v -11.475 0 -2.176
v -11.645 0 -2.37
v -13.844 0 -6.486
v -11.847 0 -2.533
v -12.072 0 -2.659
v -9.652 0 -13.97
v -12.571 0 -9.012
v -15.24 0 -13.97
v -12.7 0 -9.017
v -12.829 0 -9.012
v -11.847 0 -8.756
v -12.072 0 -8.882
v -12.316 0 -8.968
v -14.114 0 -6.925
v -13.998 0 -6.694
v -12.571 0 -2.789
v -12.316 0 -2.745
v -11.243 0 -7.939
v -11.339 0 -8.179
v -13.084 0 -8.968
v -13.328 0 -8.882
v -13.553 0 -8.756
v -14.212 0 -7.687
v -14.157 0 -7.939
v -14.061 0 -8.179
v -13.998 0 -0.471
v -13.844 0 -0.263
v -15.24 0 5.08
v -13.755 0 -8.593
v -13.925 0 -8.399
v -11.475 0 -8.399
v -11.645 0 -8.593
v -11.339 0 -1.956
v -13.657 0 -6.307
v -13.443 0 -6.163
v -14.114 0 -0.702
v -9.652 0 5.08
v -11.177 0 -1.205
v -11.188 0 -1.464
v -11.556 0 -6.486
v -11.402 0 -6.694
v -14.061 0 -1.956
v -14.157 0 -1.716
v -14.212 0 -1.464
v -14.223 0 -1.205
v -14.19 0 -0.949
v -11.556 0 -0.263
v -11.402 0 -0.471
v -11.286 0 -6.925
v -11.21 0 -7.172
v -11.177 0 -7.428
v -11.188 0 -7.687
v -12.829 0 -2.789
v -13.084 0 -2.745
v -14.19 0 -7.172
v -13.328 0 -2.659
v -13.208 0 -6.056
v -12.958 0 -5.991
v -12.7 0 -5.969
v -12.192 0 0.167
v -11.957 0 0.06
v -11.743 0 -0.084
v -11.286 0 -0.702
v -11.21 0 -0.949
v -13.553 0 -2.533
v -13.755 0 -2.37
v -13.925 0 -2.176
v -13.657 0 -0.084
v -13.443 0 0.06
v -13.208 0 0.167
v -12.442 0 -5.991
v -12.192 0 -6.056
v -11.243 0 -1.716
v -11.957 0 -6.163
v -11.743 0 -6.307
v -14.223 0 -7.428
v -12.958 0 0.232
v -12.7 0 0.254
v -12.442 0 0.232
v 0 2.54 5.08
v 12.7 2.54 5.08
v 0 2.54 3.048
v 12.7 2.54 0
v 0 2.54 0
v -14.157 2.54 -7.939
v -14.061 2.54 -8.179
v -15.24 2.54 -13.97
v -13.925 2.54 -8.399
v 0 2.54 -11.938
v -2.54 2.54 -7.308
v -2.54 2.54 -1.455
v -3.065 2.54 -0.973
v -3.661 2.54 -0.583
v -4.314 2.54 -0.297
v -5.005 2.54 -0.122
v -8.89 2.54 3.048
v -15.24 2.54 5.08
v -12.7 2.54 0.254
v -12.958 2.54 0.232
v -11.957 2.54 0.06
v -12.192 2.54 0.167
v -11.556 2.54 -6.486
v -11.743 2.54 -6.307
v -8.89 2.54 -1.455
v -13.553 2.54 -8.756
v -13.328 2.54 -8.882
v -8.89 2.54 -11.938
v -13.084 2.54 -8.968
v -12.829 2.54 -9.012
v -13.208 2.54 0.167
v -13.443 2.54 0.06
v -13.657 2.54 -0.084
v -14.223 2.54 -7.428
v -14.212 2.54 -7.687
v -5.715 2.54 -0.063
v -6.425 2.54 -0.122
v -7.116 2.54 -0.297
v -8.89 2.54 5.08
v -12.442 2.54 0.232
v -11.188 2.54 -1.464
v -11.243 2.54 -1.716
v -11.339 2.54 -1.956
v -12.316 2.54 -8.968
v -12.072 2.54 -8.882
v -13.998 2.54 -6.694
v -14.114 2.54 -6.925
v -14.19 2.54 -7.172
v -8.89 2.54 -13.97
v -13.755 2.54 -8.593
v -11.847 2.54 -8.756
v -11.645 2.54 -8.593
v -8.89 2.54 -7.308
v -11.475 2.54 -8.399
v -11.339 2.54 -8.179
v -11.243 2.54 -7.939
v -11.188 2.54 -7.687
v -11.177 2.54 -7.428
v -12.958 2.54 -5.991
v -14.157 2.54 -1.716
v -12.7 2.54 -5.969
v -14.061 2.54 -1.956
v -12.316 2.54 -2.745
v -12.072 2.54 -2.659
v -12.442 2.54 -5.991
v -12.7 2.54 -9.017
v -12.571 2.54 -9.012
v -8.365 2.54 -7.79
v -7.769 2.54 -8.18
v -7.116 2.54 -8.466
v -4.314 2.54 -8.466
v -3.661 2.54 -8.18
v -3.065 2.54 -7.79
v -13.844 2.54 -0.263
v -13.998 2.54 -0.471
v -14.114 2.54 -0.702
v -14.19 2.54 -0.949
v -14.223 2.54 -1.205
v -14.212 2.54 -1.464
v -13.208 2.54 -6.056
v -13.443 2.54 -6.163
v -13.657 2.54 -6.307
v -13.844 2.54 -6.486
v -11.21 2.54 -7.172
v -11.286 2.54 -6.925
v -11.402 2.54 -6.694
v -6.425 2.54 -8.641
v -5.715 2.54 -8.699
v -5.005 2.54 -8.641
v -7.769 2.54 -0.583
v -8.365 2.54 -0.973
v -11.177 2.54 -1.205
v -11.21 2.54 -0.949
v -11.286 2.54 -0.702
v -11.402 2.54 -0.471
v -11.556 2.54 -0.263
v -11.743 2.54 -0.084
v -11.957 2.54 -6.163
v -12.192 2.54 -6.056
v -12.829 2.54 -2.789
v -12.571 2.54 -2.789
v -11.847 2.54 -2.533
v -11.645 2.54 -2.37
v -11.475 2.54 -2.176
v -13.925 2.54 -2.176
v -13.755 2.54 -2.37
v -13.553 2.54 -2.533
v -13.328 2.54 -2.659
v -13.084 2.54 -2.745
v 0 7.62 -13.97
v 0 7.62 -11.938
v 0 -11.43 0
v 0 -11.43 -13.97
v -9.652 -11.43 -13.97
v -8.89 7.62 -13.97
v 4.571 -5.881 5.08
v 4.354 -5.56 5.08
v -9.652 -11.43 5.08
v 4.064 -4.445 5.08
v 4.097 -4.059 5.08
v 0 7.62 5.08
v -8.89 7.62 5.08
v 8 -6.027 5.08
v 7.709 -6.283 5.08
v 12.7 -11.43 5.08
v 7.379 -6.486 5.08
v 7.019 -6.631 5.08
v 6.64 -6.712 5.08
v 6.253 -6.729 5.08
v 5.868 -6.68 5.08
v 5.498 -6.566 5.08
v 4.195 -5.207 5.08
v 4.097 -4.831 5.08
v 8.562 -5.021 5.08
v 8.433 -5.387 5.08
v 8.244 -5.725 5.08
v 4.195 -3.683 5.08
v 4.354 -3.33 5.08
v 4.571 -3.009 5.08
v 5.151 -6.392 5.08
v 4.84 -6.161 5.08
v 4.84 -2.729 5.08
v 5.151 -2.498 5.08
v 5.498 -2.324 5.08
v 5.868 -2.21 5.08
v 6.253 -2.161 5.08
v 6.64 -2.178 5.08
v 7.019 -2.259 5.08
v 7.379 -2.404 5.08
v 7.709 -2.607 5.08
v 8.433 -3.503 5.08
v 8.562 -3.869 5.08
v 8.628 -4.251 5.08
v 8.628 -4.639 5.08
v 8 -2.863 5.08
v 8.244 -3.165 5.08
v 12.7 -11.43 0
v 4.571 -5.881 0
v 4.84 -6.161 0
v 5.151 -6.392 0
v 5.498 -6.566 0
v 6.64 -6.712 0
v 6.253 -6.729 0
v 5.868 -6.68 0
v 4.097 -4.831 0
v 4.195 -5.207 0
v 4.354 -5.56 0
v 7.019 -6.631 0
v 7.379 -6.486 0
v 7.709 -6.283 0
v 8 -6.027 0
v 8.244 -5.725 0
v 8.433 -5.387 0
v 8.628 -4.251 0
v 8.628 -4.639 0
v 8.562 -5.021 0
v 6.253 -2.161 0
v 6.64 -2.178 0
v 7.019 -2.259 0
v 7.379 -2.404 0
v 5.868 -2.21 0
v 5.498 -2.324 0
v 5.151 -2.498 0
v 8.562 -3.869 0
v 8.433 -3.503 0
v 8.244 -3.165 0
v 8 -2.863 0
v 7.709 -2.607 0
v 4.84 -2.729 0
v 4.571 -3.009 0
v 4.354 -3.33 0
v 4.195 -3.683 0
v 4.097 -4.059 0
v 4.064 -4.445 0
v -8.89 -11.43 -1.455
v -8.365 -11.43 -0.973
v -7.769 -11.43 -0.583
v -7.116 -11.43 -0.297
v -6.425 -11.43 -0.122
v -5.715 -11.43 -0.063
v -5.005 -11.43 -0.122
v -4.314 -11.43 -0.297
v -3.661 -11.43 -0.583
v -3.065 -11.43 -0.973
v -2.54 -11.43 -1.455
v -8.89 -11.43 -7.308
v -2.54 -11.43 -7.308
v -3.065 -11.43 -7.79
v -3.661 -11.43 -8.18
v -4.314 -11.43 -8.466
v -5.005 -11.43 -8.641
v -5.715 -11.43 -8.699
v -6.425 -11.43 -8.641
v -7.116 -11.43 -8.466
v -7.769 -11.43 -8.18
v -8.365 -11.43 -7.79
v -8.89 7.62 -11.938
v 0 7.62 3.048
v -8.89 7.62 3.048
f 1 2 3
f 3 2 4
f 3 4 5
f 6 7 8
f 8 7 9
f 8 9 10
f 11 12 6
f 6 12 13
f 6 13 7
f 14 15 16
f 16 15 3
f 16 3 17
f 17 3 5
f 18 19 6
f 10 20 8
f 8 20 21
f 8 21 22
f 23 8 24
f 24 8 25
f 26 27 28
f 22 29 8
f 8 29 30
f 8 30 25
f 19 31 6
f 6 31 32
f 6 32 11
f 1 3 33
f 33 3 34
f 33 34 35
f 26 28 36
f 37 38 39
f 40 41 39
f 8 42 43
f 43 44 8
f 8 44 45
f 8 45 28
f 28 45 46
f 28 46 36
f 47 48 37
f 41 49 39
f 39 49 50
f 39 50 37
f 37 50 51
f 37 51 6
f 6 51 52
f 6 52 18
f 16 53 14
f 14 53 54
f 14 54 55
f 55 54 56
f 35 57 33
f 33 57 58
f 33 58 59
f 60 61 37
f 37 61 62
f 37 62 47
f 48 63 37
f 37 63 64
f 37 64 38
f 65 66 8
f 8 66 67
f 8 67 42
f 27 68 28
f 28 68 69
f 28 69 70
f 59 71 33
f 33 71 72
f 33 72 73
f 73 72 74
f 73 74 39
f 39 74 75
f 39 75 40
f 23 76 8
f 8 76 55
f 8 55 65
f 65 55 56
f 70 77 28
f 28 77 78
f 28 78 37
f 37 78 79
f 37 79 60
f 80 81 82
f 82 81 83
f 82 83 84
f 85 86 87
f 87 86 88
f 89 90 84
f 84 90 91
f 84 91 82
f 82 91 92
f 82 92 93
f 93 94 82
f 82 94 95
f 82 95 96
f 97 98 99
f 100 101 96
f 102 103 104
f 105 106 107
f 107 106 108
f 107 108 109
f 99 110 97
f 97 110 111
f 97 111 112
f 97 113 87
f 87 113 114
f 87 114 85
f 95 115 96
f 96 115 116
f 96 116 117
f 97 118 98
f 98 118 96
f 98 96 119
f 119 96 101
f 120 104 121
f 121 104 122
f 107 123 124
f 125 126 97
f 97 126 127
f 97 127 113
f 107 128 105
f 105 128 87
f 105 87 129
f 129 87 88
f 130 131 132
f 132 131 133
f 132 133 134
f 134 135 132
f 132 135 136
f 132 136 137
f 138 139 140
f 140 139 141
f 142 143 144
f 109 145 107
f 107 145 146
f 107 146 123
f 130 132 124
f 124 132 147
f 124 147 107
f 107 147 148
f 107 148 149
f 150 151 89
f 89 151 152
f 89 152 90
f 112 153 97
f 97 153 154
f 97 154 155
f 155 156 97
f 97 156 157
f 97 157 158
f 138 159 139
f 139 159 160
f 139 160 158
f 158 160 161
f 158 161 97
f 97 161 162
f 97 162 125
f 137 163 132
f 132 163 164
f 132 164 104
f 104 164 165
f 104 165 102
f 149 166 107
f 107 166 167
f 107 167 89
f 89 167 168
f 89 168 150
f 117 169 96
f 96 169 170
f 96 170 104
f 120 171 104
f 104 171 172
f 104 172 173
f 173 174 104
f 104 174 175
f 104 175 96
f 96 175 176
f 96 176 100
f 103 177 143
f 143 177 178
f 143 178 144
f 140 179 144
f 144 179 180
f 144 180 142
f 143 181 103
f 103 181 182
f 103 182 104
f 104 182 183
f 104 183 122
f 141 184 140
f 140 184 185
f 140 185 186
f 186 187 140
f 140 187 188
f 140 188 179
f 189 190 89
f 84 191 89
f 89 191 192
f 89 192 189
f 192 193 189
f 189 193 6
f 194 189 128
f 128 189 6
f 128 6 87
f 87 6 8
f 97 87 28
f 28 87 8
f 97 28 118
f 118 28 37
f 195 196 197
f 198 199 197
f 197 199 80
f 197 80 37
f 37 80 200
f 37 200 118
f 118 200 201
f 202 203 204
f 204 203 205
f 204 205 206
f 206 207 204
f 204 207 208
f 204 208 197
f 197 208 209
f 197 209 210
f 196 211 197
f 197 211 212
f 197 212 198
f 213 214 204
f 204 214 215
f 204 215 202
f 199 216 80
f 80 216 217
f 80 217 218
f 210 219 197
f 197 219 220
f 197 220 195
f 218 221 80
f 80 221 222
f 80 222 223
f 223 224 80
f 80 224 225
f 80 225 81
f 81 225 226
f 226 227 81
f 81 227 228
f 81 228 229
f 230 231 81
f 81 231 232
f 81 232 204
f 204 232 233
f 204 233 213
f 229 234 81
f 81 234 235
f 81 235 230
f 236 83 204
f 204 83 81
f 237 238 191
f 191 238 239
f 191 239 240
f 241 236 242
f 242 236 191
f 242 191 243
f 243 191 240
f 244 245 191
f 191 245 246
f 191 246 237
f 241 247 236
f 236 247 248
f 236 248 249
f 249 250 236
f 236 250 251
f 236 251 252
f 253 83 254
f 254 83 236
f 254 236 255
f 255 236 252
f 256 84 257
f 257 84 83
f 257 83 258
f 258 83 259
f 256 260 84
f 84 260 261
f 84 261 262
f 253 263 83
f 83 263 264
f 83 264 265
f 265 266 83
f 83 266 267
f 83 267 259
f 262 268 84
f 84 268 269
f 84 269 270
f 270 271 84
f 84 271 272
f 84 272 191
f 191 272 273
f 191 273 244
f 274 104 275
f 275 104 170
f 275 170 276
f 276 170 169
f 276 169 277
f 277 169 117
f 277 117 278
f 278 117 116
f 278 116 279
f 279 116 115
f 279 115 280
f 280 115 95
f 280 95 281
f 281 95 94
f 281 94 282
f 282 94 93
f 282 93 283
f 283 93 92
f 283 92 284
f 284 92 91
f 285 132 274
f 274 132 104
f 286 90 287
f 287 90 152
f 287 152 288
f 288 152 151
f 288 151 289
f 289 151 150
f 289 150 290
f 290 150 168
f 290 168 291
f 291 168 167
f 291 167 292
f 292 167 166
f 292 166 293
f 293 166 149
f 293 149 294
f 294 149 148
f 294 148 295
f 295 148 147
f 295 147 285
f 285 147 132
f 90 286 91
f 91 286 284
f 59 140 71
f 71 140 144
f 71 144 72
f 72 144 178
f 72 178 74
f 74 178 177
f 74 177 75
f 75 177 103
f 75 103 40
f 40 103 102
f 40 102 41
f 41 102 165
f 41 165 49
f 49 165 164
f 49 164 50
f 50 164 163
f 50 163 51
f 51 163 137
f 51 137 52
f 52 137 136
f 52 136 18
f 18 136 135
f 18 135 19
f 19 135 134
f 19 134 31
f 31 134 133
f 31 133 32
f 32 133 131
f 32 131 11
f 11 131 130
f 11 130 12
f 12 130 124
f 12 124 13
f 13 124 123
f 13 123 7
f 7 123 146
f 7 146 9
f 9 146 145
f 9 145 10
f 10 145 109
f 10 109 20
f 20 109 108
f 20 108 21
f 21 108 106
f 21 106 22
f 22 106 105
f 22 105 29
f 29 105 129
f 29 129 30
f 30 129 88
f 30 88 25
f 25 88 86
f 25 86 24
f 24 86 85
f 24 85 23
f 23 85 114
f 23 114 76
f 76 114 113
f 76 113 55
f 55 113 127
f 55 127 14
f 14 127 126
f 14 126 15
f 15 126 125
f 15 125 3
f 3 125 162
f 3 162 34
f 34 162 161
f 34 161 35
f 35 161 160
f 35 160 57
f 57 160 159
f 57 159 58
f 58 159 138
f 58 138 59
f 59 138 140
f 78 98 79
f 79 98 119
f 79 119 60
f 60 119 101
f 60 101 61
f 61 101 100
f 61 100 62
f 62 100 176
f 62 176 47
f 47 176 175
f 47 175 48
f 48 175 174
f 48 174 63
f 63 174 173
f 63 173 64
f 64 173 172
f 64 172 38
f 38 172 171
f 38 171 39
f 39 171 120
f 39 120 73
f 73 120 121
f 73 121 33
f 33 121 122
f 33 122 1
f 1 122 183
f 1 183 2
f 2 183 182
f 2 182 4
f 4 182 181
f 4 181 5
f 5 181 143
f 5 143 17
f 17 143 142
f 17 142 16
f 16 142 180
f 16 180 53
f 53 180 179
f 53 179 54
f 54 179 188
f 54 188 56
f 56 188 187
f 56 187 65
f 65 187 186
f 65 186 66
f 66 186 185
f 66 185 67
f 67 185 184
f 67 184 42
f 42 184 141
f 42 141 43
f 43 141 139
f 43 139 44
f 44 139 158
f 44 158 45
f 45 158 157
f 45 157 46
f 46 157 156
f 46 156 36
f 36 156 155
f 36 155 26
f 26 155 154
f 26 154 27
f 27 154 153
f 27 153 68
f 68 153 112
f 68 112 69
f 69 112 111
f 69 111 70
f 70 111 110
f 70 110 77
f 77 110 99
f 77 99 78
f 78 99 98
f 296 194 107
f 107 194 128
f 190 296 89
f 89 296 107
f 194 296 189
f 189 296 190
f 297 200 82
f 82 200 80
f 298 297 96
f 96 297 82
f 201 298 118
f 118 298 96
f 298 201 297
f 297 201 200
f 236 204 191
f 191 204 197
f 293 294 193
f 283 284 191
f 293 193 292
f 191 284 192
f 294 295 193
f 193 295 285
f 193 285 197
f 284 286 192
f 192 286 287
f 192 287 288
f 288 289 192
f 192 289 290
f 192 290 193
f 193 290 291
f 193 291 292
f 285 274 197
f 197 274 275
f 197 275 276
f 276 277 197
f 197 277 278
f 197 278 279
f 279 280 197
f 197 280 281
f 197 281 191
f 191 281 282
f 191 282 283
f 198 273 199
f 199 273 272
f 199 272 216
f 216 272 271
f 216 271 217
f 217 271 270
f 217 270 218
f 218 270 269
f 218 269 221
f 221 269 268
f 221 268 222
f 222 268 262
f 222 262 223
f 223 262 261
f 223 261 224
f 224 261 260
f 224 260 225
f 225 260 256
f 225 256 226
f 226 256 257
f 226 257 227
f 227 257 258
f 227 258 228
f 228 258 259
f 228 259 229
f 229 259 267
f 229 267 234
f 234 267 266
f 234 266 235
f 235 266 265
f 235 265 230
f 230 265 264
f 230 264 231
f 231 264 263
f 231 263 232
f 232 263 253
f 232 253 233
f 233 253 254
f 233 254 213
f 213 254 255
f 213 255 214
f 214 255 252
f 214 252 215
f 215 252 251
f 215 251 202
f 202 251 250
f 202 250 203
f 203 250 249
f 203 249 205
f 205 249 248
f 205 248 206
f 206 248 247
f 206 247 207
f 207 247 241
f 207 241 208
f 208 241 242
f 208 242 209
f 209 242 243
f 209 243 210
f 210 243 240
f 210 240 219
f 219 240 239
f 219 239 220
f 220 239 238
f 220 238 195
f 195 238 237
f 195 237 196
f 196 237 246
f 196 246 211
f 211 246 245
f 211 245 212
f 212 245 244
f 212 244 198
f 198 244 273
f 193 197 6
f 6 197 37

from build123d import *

# Parameters (mm, degrees)
BOSS_EXTRUDE1_DEPTH = 2.54
CUT_EXTRUDE1_DEPTH  = 23.876
SKETCH3_R           = 1.524
CUT_EXTRUDE2_DEPTH  = 2.54
SKETCH4_W           = 8.89
SKETCH4_H           = 2.032
BOSS_EXTRUDE2_DEPTH = 5.08
SKETCH5_W           = 12.7
SKETCH5_H           = 5.08
BOSS_EXTRUDE3_DEPTH = 11.43
SKETCH6_R           = 2.286
CUT_EXTRUDE3_DEPTH  = 11.43
SKETCH7_W           = 9.652
SKETCH7_H           = 19.05
BOSS_EXTRUDE4_DEPTH = 11.43
CUT_EXTRUDE4_DEPTH  = 25.4


with BuildPart() as part:
    # Sketch1 → Boss-Extrude1 (new body)
    with BuildSketch(Plane(origin=(0, 0, 0), x_dir=(1, 0, 0), z_dir=(0, 1, 0))):
        Polygon((0, 0), (12.7, 0), (12.7, -5.08), (-15.24, -5.08), (-15.24, 13.97), (0, 13.97), align=None)
    extrude(amount=BOSS_EXTRUDE1_DEPTH)

    # Sketch2 → Cut-Extrude1 (cut)
    with BuildSketch(Plane(origin=(0, 2.54, 0), x_dir=(1, 0, 0), z_dir=(0, 1, 0))):
        with BuildLine():
            Line((-8.89, 1.45498347), (-8.89, 7.30801653))
            ThreePointArc((-8.89, 7.30801653), (-5.715, 8.6995), (-2.54, 7.30801653))
            Line((-2.54, 7.30801653), (-2.54, 1.45498347))
            ThreePointArc((-2.54, 1.45498347), (-5.715, 0.0635), (-8.89, 1.45498347))
        make_face()
    extrude(amount=-CUT_EXTRUDE1_DEPTH, mode=Mode.SUBTRACT)

    # Sketch3 → Cut-Extrude2 (cut)
    with BuildSketch(Plane(origin=(0, 2.54, 0), x_dir=(1, 0, 0), z_dir=(0, 1, 0))):
        with Locations((-12.7, 1.27)):
            Circle(SKETCH3_R)
        with Locations((-12.7, 7.493)):
            Circle(SKETCH3_R)
    extrude(amount=-CUT_EXTRUDE2_DEPTH, mode=Mode.SUBTRACT)

    # Sketch4 → Boss-Extrude2 (add)
    with BuildSketch(Plane(origin=(0, 2.54, 0), x_dir=(1, 0, 0), z_dir=(0, 1, 0))):
        with Locations((-4.445, 12.954)):
            Rectangle(SKETCH4_W, SKETCH4_H)
        with Locations((-4.445, -4.064)):
            Rectangle(SKETCH4_W, SKETCH4_H)
    extrude(amount=BOSS_EXTRUDE2_DEPTH)

    # Sketch5 → Boss-Extrude3 (add)
    with BuildSketch(Plane.XZ):
        with Locations((6.35, 2.54)):
            Rectangle(SKETCH5_W, SKETCH5_H)
    extrude(amount=BOSS_EXTRUDE3_DEPTH)

    # Sketch6 → Cut-Extrude3 (cut)
    with BuildSketch(Plane(origin=(0, 0, 0), x_dir=(-1, 0, 0), z_dir=(0, 0, -1))):
        with Locations((-6.35, -4.445)):
            Circle(SKETCH6_R)
    extrude(amount=-CUT_EXTRUDE3_DEPTH, mode=Mode.SUBTRACT)

    # Sketch7 → Boss-Extrude4 (add)
    with BuildSketch(Plane.XZ):
        with Locations((-4.826, -4.445)):
            Rectangle(SKETCH7_W, SKETCH7_H)
    extrude(amount=BOSS_EXTRUDE4_DEPTH)

    # Sketch2<3> → Cut-Extrude4 (cut)
    with BuildSketch(Plane(origin=(0, 2.54, 0), x_dir=(1, 0, 0), z_dir=(0, 1, 0))):
        with BuildLine():
            Line((-8.89, 1.45498347), (-8.89, 7.30801653))
            ThreePointArc((-8.89, 7.30801653), (-5.715, 8.6995), (-2.54, 7.30801653))
            Line((-2.54, 7.30801653), (-2.54, 1.45498347))
            ThreePointArc((-2.54, 1.45498347), (-5.715, 0.0635), (-8.89, 1.45498347))
        make_face()
    extrude(amount=-CUT_EXTRUDE4_DEPTH, mode=Mode.SUBTRACT)


solid = part.part
